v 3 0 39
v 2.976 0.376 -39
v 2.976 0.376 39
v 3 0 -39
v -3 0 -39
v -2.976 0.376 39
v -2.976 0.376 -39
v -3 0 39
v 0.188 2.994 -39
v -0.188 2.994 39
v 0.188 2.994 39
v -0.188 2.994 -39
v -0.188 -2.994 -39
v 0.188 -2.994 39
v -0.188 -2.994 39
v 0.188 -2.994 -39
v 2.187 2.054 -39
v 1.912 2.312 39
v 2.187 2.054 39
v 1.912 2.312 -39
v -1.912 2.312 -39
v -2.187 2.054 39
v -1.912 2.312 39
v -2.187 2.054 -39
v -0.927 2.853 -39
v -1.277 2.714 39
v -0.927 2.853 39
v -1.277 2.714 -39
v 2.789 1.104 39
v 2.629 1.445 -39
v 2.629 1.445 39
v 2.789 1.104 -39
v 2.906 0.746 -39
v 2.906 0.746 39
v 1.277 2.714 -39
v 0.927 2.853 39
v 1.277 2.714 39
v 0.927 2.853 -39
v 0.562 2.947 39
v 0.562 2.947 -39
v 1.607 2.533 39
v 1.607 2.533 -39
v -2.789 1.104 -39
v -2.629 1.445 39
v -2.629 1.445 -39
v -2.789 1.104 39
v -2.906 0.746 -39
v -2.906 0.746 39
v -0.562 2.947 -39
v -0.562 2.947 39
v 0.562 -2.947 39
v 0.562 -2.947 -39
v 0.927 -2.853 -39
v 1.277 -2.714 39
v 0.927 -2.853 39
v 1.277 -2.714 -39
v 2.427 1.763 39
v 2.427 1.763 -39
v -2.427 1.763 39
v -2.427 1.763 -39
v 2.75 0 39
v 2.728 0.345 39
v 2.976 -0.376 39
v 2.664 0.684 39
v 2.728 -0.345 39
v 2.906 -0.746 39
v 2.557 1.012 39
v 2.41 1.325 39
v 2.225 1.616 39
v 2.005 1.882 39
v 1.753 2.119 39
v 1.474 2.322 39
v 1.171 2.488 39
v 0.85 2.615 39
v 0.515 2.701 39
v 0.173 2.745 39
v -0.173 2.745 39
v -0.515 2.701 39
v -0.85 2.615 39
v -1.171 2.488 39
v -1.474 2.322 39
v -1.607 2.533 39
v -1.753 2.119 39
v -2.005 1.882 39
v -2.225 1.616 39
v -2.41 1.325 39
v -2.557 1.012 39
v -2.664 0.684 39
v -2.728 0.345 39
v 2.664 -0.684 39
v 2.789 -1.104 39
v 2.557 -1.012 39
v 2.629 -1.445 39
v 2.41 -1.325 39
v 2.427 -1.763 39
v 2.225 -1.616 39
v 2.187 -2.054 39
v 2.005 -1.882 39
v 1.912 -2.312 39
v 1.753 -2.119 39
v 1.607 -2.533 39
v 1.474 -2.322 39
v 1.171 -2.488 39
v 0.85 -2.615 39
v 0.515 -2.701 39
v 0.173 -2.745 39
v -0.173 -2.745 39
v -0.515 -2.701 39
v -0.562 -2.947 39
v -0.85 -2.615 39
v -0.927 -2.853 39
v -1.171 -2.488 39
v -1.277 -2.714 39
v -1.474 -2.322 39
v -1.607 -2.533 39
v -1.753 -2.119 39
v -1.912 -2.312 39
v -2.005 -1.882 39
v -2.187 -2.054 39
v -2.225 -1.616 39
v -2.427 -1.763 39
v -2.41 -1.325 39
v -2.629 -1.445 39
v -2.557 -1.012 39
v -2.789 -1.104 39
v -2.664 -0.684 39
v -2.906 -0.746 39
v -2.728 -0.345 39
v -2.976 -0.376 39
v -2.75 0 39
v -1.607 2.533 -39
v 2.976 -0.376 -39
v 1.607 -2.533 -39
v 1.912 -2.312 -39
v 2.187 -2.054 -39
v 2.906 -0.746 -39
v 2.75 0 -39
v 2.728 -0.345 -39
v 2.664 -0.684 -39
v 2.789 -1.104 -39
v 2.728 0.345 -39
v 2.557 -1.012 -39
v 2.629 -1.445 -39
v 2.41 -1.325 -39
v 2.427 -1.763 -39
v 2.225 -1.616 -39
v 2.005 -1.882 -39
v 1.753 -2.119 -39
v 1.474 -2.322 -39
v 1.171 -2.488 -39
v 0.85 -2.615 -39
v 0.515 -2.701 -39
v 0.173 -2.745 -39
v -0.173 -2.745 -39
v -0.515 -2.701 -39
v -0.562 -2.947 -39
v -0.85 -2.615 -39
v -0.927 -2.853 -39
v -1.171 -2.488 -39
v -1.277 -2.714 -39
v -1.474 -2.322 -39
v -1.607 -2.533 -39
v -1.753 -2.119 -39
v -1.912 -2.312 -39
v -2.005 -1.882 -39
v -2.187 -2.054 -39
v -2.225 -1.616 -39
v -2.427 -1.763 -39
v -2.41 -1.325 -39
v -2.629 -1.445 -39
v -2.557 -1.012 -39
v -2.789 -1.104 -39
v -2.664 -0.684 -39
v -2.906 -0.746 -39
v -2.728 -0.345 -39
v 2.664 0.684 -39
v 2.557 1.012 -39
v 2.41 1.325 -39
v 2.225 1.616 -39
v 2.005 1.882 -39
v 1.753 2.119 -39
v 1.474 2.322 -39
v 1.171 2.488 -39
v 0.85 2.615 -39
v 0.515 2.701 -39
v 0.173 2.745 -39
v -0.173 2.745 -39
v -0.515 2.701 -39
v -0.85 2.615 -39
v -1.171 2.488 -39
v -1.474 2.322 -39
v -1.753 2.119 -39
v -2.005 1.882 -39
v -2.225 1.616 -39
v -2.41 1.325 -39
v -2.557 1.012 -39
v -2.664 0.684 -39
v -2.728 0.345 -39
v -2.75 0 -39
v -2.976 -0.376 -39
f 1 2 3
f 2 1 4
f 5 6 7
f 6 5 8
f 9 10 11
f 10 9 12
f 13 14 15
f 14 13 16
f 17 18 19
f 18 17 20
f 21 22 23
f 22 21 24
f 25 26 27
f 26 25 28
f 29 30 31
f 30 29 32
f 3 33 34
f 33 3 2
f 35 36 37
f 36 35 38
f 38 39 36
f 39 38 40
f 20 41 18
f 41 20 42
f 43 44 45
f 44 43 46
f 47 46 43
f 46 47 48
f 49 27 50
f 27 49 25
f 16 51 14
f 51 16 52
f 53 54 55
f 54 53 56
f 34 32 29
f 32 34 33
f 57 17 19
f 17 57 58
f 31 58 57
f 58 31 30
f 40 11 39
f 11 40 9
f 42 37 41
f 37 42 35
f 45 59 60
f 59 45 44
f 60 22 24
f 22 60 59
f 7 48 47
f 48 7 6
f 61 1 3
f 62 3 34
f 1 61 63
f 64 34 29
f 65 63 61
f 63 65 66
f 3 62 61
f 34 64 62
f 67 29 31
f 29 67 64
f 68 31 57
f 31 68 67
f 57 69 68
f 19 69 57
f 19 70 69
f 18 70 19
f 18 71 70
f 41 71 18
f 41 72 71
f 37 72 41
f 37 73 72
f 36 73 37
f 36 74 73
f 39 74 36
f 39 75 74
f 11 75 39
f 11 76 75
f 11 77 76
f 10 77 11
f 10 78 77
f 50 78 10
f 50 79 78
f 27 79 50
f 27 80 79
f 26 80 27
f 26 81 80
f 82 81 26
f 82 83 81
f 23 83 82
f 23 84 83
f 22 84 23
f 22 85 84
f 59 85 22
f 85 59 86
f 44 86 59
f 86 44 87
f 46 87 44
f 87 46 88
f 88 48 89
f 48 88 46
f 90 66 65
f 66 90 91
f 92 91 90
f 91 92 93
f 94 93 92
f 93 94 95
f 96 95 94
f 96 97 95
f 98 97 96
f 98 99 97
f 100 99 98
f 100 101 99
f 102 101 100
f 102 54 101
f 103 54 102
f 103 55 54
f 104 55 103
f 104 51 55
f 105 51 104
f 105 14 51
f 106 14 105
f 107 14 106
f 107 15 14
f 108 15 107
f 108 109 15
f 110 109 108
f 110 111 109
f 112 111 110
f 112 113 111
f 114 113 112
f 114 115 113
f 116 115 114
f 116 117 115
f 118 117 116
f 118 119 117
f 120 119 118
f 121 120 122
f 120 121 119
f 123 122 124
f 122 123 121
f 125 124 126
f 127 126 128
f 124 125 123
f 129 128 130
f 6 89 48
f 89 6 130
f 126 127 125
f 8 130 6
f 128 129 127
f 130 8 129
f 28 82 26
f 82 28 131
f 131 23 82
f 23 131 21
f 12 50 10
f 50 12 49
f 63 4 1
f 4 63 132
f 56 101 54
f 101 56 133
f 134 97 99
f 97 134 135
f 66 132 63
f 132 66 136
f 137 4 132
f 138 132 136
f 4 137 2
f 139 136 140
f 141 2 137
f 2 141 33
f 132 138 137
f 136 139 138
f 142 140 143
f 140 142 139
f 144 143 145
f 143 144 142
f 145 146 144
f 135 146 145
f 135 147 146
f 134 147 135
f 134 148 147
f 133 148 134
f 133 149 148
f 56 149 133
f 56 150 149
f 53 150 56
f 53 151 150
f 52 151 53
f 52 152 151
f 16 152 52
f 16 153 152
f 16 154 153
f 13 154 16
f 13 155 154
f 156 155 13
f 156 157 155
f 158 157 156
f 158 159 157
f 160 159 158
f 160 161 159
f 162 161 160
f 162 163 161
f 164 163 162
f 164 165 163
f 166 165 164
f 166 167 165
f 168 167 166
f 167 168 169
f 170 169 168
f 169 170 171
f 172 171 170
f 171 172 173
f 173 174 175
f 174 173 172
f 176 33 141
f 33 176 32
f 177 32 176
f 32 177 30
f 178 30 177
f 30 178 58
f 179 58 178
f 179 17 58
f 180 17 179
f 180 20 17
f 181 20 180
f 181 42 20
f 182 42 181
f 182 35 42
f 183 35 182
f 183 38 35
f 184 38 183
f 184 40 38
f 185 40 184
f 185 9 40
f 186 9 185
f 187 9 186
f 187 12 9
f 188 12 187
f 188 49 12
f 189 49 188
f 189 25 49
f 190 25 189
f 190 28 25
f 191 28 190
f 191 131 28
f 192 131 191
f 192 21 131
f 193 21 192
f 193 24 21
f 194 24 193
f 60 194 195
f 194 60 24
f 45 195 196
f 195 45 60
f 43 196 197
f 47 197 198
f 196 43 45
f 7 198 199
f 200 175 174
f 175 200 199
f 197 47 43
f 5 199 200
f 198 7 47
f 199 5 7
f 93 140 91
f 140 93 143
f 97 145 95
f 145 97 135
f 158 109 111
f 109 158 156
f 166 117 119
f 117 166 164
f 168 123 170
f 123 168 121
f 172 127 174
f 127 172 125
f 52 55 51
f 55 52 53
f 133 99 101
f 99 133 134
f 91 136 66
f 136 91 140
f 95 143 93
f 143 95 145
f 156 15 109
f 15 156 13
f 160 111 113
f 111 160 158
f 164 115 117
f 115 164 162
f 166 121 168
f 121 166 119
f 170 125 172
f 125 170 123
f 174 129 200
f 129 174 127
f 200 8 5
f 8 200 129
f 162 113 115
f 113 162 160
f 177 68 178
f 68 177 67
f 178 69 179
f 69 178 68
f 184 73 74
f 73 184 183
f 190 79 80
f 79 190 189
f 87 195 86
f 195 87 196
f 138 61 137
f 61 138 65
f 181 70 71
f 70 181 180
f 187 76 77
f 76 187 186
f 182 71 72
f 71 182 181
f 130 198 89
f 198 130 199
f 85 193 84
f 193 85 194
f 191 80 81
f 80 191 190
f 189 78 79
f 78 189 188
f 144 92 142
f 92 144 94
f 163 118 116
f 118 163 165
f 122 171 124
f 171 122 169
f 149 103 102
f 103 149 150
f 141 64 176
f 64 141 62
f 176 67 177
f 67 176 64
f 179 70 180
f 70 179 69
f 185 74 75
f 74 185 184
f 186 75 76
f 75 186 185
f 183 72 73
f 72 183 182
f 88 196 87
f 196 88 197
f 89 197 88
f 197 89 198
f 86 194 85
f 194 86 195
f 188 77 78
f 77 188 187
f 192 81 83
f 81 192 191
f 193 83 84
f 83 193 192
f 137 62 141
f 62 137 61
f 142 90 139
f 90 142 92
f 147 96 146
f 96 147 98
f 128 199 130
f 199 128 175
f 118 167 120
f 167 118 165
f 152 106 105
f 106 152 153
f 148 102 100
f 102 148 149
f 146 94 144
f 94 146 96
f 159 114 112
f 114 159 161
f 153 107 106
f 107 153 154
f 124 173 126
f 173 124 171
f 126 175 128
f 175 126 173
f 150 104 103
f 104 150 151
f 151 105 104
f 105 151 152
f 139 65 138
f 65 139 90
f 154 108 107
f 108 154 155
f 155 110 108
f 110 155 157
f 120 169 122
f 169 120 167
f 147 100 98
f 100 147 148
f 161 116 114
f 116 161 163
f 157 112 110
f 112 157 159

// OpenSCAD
$fn = 50;


difference() {
	union() {
		translate(v = [0, 0, -39.0000000000]) {
			cylinder(h = 78, r = 3.0000000000);
		}
	}
	union() {
		translate(v = [0, 0, -100.0000000000]) {
			cylinder(h = 200, r = 2.7500000000);
		}
	}
}
